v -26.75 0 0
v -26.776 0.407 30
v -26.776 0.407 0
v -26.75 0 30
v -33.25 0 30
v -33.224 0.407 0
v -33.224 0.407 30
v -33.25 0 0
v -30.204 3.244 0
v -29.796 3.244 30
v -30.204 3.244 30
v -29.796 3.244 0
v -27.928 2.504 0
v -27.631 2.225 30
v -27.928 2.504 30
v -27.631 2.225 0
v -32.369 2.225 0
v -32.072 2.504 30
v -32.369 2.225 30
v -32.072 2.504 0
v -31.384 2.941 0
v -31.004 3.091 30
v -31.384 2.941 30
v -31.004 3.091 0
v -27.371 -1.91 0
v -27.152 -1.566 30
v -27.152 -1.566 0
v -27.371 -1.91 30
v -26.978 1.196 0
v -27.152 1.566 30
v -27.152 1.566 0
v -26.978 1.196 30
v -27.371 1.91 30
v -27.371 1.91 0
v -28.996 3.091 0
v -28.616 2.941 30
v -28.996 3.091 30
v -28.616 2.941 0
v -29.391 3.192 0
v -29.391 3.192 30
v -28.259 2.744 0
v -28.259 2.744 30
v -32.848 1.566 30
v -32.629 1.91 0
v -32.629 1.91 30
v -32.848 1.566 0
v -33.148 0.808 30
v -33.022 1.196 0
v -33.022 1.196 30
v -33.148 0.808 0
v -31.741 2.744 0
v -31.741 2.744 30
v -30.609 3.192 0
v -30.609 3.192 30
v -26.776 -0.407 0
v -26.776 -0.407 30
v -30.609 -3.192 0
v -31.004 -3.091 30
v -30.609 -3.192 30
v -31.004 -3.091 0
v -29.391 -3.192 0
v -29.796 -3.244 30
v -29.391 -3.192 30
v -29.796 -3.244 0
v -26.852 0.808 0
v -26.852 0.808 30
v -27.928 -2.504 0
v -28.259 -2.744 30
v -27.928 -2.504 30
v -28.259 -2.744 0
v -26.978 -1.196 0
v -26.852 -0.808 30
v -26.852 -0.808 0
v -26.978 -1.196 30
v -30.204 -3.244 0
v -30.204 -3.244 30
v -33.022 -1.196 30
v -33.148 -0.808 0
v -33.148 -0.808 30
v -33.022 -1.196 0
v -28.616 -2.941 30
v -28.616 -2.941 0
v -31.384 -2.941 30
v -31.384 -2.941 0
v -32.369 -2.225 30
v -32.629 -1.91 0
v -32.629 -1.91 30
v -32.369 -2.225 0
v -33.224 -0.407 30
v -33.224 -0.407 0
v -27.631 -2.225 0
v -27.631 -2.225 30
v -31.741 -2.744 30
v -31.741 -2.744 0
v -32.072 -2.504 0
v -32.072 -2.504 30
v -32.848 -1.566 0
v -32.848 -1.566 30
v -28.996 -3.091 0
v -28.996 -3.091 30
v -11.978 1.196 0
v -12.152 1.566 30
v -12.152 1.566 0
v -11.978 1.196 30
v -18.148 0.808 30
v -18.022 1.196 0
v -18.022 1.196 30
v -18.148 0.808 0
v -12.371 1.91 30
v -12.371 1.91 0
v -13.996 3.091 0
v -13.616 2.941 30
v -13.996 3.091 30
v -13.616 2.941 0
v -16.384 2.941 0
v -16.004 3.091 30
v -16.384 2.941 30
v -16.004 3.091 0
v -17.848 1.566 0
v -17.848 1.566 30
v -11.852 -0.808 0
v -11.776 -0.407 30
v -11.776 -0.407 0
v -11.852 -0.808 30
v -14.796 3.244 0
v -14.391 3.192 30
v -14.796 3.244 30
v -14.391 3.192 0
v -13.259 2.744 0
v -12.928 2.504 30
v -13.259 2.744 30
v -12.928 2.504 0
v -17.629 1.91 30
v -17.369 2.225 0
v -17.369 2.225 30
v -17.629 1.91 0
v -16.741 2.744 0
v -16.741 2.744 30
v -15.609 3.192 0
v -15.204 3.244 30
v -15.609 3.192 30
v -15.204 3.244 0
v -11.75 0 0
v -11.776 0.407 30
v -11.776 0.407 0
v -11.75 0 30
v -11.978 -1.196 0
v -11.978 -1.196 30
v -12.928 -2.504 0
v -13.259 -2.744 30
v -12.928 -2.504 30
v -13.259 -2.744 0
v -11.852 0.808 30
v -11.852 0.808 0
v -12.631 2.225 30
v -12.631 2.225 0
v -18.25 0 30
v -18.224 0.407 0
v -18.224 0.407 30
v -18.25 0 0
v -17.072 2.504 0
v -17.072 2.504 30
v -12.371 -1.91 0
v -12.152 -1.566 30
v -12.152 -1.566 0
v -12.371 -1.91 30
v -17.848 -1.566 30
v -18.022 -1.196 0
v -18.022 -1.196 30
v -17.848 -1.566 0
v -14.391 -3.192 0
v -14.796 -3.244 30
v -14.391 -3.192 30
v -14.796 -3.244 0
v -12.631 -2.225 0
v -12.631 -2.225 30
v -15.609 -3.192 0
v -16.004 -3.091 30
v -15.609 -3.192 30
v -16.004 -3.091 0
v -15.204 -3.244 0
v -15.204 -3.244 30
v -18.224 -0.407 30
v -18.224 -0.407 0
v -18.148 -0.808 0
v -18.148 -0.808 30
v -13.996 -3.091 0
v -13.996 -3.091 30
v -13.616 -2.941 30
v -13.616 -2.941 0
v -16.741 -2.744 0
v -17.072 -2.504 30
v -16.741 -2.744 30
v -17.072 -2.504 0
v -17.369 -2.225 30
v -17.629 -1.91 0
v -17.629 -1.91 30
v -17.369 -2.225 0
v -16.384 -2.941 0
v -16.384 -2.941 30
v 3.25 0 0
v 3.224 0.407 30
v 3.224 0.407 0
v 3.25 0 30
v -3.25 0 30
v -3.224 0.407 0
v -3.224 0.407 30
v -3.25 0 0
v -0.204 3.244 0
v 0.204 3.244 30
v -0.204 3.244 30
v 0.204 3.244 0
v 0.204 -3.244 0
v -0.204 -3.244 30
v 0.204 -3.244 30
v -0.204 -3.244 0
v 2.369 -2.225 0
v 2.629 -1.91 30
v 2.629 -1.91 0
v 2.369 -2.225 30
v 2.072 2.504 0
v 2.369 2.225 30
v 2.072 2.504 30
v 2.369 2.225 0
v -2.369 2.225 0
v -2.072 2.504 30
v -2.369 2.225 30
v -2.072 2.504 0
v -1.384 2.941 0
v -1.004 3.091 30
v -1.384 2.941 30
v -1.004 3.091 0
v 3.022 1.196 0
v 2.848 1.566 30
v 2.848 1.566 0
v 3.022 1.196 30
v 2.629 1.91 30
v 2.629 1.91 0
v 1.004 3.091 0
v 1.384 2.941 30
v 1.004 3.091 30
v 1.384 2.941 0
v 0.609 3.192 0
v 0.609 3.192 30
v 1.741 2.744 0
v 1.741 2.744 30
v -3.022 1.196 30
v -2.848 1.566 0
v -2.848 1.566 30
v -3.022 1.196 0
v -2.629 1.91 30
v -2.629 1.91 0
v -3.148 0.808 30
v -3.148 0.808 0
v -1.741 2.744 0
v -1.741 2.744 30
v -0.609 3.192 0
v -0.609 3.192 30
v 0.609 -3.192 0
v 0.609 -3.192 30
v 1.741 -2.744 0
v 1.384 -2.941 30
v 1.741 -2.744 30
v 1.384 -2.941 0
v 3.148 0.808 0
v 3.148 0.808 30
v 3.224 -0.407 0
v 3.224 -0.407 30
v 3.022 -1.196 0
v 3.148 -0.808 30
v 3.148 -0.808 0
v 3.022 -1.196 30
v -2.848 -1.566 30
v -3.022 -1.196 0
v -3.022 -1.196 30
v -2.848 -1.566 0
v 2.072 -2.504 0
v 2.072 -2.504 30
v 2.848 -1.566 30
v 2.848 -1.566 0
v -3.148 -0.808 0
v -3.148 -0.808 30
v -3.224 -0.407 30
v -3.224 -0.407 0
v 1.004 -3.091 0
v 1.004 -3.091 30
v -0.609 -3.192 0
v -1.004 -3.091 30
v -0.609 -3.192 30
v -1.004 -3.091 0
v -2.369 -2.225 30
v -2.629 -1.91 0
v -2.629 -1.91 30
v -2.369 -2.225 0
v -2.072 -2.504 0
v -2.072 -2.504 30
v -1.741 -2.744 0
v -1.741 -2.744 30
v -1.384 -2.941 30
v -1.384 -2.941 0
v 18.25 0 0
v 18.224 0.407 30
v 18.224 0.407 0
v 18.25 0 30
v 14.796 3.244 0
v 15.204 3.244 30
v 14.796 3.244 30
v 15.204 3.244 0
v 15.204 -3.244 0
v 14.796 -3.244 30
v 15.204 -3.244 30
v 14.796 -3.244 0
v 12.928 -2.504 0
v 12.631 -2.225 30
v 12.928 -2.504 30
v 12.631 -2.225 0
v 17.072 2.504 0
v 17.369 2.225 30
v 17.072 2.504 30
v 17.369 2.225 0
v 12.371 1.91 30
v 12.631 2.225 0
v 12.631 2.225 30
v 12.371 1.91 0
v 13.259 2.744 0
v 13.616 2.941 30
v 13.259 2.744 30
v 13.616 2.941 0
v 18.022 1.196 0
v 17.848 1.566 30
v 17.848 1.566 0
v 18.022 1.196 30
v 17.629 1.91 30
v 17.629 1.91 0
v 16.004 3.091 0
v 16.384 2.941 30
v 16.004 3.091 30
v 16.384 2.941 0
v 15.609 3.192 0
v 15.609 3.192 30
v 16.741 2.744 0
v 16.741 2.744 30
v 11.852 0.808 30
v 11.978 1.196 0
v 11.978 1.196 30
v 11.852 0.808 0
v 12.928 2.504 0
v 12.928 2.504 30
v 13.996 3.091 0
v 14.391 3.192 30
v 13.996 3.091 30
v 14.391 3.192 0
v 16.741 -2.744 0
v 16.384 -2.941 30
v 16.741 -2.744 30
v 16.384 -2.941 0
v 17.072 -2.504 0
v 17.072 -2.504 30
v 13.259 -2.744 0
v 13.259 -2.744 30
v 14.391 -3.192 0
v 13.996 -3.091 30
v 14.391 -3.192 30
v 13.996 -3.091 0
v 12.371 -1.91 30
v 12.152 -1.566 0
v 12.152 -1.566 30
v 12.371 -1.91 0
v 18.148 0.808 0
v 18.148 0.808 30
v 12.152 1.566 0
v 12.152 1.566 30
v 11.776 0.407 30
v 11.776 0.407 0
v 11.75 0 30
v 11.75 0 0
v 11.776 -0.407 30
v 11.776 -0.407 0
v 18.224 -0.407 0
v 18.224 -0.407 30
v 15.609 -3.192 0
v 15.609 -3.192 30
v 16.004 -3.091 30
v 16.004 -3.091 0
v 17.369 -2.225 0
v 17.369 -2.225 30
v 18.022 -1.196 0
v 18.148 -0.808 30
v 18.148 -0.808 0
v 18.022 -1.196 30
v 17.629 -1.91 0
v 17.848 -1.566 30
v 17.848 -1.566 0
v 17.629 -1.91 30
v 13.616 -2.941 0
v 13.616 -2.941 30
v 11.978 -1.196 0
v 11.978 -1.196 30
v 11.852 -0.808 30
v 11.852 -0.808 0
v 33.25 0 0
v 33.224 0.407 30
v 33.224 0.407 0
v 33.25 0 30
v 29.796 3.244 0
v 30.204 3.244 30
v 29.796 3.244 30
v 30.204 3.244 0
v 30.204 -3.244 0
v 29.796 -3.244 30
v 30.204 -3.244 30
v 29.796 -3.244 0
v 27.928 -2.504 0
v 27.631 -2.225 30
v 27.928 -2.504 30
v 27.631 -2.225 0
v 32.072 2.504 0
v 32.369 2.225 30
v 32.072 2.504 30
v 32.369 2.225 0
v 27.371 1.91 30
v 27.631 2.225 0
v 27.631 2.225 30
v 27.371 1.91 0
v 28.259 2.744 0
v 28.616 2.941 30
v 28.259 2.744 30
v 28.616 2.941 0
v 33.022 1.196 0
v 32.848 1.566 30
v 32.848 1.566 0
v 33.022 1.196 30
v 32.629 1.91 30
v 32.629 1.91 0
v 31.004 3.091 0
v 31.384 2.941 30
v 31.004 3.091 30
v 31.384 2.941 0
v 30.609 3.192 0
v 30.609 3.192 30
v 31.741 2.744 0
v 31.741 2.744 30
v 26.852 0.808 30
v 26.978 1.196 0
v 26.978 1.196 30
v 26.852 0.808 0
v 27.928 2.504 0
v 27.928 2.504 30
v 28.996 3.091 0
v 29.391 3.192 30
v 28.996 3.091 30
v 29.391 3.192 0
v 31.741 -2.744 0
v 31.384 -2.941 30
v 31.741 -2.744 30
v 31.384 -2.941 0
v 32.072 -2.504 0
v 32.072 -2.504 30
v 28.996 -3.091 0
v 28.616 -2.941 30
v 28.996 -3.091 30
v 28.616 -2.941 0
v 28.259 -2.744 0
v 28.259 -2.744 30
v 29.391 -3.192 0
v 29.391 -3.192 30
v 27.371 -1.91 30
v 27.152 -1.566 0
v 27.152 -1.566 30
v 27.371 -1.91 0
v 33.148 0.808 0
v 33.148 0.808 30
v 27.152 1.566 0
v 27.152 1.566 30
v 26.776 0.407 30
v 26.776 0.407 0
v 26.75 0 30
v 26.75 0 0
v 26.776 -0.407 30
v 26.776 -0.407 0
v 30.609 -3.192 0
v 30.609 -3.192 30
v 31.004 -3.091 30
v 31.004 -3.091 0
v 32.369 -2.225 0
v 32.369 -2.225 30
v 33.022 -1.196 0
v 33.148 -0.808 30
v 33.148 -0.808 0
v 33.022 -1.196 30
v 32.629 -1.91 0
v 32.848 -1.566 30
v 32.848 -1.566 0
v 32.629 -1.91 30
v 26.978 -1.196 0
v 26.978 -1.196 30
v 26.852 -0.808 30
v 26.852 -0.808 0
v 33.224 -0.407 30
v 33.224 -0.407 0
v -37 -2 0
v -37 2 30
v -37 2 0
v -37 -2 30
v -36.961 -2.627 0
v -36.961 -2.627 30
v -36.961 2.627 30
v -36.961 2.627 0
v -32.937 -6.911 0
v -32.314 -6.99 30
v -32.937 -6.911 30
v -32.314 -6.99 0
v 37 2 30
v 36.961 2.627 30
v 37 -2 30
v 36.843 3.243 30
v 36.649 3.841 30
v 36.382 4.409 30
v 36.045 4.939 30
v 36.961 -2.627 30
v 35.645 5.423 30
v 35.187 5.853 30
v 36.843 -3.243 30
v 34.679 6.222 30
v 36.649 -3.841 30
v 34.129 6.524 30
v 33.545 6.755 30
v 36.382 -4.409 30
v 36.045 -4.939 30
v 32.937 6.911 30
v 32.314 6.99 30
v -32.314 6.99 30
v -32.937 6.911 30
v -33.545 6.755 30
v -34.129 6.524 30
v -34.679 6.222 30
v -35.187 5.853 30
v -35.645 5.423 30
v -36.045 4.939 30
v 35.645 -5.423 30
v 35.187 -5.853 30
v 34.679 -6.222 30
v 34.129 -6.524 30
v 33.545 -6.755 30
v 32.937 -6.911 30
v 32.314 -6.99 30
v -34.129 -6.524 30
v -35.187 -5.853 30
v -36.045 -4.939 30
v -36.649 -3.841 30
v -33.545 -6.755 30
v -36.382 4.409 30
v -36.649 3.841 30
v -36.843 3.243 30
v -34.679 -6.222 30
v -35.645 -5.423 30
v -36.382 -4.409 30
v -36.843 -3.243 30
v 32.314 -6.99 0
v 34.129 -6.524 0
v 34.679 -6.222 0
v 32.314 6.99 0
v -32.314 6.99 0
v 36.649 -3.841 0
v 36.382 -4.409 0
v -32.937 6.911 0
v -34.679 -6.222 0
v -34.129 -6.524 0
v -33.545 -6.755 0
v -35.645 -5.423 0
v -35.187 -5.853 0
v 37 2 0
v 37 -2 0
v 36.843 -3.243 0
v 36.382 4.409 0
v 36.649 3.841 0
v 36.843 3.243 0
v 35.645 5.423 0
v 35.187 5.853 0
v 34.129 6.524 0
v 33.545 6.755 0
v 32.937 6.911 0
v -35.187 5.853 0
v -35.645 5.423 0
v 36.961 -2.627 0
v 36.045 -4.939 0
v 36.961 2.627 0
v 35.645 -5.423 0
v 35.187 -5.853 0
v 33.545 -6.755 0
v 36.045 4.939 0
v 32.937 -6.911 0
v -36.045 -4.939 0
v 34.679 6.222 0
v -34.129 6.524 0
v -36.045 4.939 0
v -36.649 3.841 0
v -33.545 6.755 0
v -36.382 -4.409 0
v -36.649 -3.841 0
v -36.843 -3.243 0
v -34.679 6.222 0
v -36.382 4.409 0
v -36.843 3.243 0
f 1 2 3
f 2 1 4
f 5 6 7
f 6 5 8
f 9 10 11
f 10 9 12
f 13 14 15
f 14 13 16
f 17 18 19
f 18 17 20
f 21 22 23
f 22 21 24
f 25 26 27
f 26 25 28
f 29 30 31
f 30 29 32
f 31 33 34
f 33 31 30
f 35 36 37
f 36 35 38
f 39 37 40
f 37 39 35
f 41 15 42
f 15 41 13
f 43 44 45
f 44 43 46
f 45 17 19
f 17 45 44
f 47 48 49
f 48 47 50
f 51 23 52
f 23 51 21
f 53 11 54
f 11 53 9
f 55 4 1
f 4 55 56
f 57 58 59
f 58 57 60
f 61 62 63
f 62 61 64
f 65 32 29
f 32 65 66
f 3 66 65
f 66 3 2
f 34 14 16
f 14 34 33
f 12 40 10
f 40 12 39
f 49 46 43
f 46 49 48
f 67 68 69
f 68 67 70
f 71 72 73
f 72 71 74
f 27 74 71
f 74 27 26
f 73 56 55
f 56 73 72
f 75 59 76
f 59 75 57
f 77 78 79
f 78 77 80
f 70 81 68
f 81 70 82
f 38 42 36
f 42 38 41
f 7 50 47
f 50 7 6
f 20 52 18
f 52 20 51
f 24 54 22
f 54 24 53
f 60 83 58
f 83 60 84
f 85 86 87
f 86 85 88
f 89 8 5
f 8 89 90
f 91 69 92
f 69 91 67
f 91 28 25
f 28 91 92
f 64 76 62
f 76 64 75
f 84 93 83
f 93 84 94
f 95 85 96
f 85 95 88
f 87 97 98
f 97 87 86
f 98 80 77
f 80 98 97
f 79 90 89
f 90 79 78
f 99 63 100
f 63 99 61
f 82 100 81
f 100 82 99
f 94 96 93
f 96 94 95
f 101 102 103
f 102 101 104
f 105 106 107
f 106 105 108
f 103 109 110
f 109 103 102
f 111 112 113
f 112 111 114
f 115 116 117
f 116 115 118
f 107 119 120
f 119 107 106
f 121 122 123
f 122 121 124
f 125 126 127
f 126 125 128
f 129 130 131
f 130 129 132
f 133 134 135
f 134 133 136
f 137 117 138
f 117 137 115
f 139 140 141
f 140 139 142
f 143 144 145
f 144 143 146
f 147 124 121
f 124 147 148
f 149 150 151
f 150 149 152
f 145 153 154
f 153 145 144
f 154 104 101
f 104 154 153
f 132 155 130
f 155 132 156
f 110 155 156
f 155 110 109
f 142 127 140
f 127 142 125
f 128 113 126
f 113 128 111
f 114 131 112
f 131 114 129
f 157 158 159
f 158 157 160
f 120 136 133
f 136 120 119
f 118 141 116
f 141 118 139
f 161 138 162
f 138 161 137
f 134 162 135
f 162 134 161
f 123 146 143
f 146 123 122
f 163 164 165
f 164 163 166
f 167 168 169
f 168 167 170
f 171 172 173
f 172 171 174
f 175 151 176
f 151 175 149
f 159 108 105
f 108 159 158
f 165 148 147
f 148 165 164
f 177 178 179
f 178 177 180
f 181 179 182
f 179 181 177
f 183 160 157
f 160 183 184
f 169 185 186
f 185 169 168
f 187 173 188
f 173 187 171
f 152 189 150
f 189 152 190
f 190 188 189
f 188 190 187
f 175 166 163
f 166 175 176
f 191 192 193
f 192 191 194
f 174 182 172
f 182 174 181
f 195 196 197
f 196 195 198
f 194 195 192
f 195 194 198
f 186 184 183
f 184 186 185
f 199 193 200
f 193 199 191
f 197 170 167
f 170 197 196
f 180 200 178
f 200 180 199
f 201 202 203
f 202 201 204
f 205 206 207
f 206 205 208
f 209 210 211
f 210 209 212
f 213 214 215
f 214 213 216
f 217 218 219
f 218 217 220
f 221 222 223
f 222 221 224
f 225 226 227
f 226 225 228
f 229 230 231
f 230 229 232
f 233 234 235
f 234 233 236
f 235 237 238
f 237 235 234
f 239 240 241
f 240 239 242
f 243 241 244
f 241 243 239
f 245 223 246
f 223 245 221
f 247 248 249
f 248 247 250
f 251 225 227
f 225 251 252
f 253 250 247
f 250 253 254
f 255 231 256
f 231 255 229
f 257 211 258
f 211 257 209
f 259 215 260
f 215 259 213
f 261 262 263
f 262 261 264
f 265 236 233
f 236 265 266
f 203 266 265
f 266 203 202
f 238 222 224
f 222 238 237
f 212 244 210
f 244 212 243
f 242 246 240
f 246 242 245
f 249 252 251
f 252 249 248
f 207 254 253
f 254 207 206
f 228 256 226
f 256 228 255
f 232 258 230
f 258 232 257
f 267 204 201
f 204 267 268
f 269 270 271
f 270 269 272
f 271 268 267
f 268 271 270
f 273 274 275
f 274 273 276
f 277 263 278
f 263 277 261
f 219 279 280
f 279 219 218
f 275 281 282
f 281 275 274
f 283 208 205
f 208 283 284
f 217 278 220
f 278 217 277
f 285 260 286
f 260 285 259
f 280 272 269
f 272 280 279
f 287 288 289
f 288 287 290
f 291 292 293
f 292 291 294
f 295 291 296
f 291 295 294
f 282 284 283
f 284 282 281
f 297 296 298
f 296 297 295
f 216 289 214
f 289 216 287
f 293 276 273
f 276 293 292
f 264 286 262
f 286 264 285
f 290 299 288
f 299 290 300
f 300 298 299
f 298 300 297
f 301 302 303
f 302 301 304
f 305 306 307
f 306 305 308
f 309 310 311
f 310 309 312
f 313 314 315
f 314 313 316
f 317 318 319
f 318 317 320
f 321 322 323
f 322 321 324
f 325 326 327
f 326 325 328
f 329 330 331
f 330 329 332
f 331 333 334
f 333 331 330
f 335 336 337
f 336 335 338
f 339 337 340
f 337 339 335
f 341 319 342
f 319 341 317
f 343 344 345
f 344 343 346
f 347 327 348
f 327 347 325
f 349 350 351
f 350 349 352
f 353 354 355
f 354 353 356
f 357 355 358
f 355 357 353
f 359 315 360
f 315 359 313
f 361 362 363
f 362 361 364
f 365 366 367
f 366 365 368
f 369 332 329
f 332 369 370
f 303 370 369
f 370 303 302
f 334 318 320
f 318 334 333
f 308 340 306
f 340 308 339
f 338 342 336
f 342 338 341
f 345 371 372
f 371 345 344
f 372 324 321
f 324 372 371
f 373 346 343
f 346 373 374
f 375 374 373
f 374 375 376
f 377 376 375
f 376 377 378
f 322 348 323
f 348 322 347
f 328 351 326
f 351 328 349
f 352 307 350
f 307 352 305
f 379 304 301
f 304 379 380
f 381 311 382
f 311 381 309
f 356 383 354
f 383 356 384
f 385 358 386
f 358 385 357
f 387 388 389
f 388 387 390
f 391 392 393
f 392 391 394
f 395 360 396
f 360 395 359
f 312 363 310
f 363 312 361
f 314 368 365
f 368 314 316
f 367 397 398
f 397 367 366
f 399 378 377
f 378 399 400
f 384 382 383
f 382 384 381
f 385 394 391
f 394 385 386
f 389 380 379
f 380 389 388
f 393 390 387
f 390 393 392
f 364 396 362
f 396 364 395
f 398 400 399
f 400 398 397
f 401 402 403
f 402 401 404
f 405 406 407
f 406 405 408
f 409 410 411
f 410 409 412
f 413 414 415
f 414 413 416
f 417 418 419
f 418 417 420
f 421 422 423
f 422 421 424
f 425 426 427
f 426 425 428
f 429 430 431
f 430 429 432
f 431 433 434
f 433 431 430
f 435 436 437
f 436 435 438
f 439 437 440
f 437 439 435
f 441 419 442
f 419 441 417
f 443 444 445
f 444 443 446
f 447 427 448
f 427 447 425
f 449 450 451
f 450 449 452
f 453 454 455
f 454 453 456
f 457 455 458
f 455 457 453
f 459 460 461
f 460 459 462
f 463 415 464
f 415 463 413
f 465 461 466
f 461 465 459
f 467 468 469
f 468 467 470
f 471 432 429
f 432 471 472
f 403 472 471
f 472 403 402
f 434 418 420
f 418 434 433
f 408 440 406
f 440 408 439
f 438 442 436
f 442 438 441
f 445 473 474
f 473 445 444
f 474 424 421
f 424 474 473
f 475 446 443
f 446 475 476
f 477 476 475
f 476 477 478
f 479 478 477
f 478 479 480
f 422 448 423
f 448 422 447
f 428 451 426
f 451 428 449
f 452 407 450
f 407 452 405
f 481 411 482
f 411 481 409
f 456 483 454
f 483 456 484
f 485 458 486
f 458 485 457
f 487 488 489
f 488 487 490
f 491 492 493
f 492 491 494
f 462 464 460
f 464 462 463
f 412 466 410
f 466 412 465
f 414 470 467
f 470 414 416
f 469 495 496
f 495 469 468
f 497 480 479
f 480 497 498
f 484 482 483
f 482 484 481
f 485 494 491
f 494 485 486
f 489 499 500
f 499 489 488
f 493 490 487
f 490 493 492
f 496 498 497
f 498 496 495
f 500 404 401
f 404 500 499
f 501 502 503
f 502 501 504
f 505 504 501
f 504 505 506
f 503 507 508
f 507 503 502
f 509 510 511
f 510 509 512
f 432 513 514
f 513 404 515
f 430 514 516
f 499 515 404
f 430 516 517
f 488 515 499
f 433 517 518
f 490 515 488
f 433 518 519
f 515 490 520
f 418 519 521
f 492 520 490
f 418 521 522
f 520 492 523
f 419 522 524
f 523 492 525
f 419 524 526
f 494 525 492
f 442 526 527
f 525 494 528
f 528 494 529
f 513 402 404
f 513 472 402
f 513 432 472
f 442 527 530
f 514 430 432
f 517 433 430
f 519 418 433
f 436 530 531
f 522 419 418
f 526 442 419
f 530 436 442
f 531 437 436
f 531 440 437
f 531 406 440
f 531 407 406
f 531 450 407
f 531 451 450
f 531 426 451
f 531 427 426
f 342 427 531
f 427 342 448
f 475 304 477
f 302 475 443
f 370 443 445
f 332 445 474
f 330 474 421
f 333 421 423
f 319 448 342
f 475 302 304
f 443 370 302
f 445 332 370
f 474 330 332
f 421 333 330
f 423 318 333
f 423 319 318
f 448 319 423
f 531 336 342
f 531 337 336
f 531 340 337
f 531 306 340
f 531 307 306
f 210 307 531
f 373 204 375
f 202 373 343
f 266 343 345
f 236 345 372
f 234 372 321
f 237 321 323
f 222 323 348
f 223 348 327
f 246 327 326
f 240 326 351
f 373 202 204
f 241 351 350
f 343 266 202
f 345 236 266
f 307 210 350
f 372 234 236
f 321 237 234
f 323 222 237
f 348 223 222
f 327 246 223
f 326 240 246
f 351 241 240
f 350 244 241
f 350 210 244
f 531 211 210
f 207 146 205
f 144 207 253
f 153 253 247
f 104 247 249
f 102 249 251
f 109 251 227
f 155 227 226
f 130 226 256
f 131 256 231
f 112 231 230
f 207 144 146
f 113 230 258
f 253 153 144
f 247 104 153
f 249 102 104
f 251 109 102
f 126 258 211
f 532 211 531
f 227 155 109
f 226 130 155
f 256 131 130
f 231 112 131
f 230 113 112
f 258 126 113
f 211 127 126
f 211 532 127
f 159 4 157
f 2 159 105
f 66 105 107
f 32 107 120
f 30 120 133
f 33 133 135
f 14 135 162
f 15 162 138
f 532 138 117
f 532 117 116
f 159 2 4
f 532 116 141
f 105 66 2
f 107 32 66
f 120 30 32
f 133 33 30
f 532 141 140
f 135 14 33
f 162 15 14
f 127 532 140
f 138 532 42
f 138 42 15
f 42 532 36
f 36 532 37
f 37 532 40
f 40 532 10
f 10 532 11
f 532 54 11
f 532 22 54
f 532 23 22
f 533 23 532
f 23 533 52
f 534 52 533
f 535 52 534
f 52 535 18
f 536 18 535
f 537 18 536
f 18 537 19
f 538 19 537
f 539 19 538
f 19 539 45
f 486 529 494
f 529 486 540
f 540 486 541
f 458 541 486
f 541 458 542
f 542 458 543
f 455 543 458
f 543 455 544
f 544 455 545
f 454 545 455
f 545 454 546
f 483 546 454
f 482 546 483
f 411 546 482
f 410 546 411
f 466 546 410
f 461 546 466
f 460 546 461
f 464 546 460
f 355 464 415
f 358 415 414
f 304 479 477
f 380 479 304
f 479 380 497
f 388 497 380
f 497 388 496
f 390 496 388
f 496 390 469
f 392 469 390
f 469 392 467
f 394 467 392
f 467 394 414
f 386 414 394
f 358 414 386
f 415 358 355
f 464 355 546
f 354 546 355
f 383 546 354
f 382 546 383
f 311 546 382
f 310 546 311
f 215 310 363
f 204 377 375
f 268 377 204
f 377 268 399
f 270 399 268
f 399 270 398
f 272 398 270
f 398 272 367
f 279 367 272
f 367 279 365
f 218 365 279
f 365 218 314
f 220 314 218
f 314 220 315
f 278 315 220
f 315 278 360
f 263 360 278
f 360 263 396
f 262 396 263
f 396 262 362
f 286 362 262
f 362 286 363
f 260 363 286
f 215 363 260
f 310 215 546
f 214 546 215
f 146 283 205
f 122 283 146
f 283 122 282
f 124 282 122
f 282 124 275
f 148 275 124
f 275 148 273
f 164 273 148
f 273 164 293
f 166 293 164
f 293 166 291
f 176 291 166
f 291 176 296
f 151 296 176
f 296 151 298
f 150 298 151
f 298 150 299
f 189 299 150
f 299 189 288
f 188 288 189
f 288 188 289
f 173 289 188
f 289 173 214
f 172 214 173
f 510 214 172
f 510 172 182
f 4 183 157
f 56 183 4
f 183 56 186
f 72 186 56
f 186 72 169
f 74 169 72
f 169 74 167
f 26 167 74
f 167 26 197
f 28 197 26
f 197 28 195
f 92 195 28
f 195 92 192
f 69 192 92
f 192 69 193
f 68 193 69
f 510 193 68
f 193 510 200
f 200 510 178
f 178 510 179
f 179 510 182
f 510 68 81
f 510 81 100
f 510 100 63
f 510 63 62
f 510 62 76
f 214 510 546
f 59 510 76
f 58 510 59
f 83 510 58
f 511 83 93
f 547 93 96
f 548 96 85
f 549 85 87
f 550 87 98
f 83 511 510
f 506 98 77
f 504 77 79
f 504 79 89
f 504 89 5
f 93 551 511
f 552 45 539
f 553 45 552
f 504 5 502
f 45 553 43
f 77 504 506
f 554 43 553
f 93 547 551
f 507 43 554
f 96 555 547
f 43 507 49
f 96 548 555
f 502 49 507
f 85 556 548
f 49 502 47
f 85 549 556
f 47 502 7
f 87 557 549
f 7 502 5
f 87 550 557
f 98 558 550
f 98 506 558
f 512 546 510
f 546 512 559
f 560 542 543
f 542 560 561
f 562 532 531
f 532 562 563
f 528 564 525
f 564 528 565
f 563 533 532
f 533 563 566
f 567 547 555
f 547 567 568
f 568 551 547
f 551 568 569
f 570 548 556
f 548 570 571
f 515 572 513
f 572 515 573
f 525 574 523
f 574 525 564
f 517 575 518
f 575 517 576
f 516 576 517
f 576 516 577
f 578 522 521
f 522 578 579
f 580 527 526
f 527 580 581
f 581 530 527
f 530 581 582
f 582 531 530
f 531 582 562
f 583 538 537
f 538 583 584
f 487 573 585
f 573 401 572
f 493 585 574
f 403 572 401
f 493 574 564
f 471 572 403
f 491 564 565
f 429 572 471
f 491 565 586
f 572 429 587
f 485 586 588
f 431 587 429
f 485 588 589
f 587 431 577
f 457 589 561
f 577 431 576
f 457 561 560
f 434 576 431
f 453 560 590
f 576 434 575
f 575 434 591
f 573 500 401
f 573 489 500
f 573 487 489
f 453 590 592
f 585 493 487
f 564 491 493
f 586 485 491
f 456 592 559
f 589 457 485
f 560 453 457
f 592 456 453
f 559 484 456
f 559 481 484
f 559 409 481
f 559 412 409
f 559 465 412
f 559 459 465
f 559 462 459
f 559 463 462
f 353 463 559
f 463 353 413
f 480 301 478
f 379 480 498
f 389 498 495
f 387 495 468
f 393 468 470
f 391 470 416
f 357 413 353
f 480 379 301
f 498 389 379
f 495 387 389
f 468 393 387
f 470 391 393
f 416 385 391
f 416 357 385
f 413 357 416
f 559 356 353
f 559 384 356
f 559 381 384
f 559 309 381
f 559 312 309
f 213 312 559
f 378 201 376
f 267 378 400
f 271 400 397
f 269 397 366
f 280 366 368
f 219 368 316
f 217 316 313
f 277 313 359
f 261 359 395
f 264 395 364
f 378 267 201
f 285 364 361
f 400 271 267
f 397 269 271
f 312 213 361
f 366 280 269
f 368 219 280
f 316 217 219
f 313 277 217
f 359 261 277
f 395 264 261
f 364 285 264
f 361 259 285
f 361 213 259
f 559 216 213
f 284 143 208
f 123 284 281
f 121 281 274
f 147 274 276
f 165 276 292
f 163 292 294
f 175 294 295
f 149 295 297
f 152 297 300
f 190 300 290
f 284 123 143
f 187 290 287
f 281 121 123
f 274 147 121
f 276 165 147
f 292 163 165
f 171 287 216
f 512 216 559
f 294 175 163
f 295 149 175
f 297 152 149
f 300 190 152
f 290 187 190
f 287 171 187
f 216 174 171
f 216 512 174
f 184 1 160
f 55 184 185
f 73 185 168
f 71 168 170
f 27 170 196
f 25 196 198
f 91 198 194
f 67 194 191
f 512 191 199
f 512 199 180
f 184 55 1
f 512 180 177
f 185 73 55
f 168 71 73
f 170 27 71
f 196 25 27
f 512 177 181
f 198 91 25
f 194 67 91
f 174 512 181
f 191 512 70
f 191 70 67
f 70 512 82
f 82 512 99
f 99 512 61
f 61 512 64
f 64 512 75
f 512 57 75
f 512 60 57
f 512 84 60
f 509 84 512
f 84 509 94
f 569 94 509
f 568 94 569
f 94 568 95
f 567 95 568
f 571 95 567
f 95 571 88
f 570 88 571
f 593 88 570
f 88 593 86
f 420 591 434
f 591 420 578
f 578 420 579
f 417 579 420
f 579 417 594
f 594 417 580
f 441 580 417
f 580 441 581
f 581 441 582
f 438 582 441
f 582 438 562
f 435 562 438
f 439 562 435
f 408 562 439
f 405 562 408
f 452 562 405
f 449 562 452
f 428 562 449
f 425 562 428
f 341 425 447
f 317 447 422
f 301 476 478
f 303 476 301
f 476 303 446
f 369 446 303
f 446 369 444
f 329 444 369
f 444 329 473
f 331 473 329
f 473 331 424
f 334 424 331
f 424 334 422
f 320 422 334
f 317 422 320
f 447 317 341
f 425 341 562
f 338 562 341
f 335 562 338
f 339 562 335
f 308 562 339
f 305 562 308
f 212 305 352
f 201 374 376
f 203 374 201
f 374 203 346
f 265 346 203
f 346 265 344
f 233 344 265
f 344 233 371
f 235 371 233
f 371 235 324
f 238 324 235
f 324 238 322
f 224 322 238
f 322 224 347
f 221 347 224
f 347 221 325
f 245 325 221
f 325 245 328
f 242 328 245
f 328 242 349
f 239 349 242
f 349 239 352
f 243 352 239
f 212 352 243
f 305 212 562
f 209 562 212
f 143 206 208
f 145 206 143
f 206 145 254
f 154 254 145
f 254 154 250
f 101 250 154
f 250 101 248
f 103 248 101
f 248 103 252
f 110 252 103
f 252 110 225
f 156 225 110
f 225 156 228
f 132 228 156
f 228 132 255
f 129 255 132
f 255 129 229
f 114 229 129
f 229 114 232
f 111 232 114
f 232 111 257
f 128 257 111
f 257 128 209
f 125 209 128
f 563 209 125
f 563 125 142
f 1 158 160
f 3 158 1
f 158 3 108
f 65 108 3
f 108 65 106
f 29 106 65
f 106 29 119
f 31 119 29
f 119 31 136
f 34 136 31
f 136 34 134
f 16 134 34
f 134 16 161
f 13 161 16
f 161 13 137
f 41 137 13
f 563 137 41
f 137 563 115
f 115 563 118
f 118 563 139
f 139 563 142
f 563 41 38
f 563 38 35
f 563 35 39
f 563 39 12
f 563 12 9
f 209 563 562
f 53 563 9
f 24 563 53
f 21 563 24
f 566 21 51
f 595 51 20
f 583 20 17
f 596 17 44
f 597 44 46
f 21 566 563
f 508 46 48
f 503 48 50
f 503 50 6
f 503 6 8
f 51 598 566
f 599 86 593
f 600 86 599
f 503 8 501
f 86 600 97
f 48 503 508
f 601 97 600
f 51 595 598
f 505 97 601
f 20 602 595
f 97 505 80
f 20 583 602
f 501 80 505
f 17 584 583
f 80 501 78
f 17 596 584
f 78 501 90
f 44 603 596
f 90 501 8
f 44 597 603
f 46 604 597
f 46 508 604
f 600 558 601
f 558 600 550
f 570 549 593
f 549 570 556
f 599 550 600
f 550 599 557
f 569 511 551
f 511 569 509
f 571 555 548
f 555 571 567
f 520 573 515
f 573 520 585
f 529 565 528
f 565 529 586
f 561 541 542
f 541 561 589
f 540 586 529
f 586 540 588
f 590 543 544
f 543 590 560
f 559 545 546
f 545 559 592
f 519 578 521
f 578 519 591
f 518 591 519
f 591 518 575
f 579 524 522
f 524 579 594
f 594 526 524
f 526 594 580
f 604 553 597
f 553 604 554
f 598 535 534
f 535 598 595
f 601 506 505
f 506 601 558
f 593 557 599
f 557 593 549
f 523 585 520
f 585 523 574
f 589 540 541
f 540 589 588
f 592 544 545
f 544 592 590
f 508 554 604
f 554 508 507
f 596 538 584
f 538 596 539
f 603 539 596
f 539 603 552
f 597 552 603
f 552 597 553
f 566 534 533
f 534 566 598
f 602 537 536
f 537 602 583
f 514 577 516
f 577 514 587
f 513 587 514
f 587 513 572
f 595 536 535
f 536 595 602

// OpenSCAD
$fn = 50;


difference() {
	union() {
		hull() {
			translate(v = [-32.0000000000, 2.0000000000, 0]) {
				cylinder(h = 30, r = 5);
			}
			translate(v = [32.0000000000, 2.0000000000, 0]) {
				cylinder(h = 30, r = 5);
			}
			translate(v = [-32.0000000000, -2.0000000000, 0]) {
				cylinder(h = 30, r = 5);
			}
			translate(v = [32.0000000000, -2.0000000000, 0]) {
				cylinder(h = 30, r = 5);
			}
		}
	}
	union() {
		translate(v = [-30.0000000000, 0.0000000000, 0]) {
			translate(v = [0, 0, -100]) {
				cylinder(h = 200, r = 3.2500000000);
			}
		}
		translate(v = [-15.0000000000, 0.0000000000, 0]) {
			translate(v = [0, 0, -100]) {
				cylinder(h = 200, r = 3.2500000000);
			}
		}
		translate(v = [0, 0, -100]) {
			cylinder(h = 200, r = 3.2500000000);
		}
		translate(v = [15.0000000000, 0.0000000000, 0]) {
			translate(v = [0, 0, -100]) {
				cylinder(h = 200, r = 3.2500000000);
			}
		}
		translate(v = [30.0000000000, 0.0000000000, 0]) {
			translate(v = [0, 0, -100]) {
				cylinder(h = 200, r = 3.2500000000);
			}
		}
	}
}
